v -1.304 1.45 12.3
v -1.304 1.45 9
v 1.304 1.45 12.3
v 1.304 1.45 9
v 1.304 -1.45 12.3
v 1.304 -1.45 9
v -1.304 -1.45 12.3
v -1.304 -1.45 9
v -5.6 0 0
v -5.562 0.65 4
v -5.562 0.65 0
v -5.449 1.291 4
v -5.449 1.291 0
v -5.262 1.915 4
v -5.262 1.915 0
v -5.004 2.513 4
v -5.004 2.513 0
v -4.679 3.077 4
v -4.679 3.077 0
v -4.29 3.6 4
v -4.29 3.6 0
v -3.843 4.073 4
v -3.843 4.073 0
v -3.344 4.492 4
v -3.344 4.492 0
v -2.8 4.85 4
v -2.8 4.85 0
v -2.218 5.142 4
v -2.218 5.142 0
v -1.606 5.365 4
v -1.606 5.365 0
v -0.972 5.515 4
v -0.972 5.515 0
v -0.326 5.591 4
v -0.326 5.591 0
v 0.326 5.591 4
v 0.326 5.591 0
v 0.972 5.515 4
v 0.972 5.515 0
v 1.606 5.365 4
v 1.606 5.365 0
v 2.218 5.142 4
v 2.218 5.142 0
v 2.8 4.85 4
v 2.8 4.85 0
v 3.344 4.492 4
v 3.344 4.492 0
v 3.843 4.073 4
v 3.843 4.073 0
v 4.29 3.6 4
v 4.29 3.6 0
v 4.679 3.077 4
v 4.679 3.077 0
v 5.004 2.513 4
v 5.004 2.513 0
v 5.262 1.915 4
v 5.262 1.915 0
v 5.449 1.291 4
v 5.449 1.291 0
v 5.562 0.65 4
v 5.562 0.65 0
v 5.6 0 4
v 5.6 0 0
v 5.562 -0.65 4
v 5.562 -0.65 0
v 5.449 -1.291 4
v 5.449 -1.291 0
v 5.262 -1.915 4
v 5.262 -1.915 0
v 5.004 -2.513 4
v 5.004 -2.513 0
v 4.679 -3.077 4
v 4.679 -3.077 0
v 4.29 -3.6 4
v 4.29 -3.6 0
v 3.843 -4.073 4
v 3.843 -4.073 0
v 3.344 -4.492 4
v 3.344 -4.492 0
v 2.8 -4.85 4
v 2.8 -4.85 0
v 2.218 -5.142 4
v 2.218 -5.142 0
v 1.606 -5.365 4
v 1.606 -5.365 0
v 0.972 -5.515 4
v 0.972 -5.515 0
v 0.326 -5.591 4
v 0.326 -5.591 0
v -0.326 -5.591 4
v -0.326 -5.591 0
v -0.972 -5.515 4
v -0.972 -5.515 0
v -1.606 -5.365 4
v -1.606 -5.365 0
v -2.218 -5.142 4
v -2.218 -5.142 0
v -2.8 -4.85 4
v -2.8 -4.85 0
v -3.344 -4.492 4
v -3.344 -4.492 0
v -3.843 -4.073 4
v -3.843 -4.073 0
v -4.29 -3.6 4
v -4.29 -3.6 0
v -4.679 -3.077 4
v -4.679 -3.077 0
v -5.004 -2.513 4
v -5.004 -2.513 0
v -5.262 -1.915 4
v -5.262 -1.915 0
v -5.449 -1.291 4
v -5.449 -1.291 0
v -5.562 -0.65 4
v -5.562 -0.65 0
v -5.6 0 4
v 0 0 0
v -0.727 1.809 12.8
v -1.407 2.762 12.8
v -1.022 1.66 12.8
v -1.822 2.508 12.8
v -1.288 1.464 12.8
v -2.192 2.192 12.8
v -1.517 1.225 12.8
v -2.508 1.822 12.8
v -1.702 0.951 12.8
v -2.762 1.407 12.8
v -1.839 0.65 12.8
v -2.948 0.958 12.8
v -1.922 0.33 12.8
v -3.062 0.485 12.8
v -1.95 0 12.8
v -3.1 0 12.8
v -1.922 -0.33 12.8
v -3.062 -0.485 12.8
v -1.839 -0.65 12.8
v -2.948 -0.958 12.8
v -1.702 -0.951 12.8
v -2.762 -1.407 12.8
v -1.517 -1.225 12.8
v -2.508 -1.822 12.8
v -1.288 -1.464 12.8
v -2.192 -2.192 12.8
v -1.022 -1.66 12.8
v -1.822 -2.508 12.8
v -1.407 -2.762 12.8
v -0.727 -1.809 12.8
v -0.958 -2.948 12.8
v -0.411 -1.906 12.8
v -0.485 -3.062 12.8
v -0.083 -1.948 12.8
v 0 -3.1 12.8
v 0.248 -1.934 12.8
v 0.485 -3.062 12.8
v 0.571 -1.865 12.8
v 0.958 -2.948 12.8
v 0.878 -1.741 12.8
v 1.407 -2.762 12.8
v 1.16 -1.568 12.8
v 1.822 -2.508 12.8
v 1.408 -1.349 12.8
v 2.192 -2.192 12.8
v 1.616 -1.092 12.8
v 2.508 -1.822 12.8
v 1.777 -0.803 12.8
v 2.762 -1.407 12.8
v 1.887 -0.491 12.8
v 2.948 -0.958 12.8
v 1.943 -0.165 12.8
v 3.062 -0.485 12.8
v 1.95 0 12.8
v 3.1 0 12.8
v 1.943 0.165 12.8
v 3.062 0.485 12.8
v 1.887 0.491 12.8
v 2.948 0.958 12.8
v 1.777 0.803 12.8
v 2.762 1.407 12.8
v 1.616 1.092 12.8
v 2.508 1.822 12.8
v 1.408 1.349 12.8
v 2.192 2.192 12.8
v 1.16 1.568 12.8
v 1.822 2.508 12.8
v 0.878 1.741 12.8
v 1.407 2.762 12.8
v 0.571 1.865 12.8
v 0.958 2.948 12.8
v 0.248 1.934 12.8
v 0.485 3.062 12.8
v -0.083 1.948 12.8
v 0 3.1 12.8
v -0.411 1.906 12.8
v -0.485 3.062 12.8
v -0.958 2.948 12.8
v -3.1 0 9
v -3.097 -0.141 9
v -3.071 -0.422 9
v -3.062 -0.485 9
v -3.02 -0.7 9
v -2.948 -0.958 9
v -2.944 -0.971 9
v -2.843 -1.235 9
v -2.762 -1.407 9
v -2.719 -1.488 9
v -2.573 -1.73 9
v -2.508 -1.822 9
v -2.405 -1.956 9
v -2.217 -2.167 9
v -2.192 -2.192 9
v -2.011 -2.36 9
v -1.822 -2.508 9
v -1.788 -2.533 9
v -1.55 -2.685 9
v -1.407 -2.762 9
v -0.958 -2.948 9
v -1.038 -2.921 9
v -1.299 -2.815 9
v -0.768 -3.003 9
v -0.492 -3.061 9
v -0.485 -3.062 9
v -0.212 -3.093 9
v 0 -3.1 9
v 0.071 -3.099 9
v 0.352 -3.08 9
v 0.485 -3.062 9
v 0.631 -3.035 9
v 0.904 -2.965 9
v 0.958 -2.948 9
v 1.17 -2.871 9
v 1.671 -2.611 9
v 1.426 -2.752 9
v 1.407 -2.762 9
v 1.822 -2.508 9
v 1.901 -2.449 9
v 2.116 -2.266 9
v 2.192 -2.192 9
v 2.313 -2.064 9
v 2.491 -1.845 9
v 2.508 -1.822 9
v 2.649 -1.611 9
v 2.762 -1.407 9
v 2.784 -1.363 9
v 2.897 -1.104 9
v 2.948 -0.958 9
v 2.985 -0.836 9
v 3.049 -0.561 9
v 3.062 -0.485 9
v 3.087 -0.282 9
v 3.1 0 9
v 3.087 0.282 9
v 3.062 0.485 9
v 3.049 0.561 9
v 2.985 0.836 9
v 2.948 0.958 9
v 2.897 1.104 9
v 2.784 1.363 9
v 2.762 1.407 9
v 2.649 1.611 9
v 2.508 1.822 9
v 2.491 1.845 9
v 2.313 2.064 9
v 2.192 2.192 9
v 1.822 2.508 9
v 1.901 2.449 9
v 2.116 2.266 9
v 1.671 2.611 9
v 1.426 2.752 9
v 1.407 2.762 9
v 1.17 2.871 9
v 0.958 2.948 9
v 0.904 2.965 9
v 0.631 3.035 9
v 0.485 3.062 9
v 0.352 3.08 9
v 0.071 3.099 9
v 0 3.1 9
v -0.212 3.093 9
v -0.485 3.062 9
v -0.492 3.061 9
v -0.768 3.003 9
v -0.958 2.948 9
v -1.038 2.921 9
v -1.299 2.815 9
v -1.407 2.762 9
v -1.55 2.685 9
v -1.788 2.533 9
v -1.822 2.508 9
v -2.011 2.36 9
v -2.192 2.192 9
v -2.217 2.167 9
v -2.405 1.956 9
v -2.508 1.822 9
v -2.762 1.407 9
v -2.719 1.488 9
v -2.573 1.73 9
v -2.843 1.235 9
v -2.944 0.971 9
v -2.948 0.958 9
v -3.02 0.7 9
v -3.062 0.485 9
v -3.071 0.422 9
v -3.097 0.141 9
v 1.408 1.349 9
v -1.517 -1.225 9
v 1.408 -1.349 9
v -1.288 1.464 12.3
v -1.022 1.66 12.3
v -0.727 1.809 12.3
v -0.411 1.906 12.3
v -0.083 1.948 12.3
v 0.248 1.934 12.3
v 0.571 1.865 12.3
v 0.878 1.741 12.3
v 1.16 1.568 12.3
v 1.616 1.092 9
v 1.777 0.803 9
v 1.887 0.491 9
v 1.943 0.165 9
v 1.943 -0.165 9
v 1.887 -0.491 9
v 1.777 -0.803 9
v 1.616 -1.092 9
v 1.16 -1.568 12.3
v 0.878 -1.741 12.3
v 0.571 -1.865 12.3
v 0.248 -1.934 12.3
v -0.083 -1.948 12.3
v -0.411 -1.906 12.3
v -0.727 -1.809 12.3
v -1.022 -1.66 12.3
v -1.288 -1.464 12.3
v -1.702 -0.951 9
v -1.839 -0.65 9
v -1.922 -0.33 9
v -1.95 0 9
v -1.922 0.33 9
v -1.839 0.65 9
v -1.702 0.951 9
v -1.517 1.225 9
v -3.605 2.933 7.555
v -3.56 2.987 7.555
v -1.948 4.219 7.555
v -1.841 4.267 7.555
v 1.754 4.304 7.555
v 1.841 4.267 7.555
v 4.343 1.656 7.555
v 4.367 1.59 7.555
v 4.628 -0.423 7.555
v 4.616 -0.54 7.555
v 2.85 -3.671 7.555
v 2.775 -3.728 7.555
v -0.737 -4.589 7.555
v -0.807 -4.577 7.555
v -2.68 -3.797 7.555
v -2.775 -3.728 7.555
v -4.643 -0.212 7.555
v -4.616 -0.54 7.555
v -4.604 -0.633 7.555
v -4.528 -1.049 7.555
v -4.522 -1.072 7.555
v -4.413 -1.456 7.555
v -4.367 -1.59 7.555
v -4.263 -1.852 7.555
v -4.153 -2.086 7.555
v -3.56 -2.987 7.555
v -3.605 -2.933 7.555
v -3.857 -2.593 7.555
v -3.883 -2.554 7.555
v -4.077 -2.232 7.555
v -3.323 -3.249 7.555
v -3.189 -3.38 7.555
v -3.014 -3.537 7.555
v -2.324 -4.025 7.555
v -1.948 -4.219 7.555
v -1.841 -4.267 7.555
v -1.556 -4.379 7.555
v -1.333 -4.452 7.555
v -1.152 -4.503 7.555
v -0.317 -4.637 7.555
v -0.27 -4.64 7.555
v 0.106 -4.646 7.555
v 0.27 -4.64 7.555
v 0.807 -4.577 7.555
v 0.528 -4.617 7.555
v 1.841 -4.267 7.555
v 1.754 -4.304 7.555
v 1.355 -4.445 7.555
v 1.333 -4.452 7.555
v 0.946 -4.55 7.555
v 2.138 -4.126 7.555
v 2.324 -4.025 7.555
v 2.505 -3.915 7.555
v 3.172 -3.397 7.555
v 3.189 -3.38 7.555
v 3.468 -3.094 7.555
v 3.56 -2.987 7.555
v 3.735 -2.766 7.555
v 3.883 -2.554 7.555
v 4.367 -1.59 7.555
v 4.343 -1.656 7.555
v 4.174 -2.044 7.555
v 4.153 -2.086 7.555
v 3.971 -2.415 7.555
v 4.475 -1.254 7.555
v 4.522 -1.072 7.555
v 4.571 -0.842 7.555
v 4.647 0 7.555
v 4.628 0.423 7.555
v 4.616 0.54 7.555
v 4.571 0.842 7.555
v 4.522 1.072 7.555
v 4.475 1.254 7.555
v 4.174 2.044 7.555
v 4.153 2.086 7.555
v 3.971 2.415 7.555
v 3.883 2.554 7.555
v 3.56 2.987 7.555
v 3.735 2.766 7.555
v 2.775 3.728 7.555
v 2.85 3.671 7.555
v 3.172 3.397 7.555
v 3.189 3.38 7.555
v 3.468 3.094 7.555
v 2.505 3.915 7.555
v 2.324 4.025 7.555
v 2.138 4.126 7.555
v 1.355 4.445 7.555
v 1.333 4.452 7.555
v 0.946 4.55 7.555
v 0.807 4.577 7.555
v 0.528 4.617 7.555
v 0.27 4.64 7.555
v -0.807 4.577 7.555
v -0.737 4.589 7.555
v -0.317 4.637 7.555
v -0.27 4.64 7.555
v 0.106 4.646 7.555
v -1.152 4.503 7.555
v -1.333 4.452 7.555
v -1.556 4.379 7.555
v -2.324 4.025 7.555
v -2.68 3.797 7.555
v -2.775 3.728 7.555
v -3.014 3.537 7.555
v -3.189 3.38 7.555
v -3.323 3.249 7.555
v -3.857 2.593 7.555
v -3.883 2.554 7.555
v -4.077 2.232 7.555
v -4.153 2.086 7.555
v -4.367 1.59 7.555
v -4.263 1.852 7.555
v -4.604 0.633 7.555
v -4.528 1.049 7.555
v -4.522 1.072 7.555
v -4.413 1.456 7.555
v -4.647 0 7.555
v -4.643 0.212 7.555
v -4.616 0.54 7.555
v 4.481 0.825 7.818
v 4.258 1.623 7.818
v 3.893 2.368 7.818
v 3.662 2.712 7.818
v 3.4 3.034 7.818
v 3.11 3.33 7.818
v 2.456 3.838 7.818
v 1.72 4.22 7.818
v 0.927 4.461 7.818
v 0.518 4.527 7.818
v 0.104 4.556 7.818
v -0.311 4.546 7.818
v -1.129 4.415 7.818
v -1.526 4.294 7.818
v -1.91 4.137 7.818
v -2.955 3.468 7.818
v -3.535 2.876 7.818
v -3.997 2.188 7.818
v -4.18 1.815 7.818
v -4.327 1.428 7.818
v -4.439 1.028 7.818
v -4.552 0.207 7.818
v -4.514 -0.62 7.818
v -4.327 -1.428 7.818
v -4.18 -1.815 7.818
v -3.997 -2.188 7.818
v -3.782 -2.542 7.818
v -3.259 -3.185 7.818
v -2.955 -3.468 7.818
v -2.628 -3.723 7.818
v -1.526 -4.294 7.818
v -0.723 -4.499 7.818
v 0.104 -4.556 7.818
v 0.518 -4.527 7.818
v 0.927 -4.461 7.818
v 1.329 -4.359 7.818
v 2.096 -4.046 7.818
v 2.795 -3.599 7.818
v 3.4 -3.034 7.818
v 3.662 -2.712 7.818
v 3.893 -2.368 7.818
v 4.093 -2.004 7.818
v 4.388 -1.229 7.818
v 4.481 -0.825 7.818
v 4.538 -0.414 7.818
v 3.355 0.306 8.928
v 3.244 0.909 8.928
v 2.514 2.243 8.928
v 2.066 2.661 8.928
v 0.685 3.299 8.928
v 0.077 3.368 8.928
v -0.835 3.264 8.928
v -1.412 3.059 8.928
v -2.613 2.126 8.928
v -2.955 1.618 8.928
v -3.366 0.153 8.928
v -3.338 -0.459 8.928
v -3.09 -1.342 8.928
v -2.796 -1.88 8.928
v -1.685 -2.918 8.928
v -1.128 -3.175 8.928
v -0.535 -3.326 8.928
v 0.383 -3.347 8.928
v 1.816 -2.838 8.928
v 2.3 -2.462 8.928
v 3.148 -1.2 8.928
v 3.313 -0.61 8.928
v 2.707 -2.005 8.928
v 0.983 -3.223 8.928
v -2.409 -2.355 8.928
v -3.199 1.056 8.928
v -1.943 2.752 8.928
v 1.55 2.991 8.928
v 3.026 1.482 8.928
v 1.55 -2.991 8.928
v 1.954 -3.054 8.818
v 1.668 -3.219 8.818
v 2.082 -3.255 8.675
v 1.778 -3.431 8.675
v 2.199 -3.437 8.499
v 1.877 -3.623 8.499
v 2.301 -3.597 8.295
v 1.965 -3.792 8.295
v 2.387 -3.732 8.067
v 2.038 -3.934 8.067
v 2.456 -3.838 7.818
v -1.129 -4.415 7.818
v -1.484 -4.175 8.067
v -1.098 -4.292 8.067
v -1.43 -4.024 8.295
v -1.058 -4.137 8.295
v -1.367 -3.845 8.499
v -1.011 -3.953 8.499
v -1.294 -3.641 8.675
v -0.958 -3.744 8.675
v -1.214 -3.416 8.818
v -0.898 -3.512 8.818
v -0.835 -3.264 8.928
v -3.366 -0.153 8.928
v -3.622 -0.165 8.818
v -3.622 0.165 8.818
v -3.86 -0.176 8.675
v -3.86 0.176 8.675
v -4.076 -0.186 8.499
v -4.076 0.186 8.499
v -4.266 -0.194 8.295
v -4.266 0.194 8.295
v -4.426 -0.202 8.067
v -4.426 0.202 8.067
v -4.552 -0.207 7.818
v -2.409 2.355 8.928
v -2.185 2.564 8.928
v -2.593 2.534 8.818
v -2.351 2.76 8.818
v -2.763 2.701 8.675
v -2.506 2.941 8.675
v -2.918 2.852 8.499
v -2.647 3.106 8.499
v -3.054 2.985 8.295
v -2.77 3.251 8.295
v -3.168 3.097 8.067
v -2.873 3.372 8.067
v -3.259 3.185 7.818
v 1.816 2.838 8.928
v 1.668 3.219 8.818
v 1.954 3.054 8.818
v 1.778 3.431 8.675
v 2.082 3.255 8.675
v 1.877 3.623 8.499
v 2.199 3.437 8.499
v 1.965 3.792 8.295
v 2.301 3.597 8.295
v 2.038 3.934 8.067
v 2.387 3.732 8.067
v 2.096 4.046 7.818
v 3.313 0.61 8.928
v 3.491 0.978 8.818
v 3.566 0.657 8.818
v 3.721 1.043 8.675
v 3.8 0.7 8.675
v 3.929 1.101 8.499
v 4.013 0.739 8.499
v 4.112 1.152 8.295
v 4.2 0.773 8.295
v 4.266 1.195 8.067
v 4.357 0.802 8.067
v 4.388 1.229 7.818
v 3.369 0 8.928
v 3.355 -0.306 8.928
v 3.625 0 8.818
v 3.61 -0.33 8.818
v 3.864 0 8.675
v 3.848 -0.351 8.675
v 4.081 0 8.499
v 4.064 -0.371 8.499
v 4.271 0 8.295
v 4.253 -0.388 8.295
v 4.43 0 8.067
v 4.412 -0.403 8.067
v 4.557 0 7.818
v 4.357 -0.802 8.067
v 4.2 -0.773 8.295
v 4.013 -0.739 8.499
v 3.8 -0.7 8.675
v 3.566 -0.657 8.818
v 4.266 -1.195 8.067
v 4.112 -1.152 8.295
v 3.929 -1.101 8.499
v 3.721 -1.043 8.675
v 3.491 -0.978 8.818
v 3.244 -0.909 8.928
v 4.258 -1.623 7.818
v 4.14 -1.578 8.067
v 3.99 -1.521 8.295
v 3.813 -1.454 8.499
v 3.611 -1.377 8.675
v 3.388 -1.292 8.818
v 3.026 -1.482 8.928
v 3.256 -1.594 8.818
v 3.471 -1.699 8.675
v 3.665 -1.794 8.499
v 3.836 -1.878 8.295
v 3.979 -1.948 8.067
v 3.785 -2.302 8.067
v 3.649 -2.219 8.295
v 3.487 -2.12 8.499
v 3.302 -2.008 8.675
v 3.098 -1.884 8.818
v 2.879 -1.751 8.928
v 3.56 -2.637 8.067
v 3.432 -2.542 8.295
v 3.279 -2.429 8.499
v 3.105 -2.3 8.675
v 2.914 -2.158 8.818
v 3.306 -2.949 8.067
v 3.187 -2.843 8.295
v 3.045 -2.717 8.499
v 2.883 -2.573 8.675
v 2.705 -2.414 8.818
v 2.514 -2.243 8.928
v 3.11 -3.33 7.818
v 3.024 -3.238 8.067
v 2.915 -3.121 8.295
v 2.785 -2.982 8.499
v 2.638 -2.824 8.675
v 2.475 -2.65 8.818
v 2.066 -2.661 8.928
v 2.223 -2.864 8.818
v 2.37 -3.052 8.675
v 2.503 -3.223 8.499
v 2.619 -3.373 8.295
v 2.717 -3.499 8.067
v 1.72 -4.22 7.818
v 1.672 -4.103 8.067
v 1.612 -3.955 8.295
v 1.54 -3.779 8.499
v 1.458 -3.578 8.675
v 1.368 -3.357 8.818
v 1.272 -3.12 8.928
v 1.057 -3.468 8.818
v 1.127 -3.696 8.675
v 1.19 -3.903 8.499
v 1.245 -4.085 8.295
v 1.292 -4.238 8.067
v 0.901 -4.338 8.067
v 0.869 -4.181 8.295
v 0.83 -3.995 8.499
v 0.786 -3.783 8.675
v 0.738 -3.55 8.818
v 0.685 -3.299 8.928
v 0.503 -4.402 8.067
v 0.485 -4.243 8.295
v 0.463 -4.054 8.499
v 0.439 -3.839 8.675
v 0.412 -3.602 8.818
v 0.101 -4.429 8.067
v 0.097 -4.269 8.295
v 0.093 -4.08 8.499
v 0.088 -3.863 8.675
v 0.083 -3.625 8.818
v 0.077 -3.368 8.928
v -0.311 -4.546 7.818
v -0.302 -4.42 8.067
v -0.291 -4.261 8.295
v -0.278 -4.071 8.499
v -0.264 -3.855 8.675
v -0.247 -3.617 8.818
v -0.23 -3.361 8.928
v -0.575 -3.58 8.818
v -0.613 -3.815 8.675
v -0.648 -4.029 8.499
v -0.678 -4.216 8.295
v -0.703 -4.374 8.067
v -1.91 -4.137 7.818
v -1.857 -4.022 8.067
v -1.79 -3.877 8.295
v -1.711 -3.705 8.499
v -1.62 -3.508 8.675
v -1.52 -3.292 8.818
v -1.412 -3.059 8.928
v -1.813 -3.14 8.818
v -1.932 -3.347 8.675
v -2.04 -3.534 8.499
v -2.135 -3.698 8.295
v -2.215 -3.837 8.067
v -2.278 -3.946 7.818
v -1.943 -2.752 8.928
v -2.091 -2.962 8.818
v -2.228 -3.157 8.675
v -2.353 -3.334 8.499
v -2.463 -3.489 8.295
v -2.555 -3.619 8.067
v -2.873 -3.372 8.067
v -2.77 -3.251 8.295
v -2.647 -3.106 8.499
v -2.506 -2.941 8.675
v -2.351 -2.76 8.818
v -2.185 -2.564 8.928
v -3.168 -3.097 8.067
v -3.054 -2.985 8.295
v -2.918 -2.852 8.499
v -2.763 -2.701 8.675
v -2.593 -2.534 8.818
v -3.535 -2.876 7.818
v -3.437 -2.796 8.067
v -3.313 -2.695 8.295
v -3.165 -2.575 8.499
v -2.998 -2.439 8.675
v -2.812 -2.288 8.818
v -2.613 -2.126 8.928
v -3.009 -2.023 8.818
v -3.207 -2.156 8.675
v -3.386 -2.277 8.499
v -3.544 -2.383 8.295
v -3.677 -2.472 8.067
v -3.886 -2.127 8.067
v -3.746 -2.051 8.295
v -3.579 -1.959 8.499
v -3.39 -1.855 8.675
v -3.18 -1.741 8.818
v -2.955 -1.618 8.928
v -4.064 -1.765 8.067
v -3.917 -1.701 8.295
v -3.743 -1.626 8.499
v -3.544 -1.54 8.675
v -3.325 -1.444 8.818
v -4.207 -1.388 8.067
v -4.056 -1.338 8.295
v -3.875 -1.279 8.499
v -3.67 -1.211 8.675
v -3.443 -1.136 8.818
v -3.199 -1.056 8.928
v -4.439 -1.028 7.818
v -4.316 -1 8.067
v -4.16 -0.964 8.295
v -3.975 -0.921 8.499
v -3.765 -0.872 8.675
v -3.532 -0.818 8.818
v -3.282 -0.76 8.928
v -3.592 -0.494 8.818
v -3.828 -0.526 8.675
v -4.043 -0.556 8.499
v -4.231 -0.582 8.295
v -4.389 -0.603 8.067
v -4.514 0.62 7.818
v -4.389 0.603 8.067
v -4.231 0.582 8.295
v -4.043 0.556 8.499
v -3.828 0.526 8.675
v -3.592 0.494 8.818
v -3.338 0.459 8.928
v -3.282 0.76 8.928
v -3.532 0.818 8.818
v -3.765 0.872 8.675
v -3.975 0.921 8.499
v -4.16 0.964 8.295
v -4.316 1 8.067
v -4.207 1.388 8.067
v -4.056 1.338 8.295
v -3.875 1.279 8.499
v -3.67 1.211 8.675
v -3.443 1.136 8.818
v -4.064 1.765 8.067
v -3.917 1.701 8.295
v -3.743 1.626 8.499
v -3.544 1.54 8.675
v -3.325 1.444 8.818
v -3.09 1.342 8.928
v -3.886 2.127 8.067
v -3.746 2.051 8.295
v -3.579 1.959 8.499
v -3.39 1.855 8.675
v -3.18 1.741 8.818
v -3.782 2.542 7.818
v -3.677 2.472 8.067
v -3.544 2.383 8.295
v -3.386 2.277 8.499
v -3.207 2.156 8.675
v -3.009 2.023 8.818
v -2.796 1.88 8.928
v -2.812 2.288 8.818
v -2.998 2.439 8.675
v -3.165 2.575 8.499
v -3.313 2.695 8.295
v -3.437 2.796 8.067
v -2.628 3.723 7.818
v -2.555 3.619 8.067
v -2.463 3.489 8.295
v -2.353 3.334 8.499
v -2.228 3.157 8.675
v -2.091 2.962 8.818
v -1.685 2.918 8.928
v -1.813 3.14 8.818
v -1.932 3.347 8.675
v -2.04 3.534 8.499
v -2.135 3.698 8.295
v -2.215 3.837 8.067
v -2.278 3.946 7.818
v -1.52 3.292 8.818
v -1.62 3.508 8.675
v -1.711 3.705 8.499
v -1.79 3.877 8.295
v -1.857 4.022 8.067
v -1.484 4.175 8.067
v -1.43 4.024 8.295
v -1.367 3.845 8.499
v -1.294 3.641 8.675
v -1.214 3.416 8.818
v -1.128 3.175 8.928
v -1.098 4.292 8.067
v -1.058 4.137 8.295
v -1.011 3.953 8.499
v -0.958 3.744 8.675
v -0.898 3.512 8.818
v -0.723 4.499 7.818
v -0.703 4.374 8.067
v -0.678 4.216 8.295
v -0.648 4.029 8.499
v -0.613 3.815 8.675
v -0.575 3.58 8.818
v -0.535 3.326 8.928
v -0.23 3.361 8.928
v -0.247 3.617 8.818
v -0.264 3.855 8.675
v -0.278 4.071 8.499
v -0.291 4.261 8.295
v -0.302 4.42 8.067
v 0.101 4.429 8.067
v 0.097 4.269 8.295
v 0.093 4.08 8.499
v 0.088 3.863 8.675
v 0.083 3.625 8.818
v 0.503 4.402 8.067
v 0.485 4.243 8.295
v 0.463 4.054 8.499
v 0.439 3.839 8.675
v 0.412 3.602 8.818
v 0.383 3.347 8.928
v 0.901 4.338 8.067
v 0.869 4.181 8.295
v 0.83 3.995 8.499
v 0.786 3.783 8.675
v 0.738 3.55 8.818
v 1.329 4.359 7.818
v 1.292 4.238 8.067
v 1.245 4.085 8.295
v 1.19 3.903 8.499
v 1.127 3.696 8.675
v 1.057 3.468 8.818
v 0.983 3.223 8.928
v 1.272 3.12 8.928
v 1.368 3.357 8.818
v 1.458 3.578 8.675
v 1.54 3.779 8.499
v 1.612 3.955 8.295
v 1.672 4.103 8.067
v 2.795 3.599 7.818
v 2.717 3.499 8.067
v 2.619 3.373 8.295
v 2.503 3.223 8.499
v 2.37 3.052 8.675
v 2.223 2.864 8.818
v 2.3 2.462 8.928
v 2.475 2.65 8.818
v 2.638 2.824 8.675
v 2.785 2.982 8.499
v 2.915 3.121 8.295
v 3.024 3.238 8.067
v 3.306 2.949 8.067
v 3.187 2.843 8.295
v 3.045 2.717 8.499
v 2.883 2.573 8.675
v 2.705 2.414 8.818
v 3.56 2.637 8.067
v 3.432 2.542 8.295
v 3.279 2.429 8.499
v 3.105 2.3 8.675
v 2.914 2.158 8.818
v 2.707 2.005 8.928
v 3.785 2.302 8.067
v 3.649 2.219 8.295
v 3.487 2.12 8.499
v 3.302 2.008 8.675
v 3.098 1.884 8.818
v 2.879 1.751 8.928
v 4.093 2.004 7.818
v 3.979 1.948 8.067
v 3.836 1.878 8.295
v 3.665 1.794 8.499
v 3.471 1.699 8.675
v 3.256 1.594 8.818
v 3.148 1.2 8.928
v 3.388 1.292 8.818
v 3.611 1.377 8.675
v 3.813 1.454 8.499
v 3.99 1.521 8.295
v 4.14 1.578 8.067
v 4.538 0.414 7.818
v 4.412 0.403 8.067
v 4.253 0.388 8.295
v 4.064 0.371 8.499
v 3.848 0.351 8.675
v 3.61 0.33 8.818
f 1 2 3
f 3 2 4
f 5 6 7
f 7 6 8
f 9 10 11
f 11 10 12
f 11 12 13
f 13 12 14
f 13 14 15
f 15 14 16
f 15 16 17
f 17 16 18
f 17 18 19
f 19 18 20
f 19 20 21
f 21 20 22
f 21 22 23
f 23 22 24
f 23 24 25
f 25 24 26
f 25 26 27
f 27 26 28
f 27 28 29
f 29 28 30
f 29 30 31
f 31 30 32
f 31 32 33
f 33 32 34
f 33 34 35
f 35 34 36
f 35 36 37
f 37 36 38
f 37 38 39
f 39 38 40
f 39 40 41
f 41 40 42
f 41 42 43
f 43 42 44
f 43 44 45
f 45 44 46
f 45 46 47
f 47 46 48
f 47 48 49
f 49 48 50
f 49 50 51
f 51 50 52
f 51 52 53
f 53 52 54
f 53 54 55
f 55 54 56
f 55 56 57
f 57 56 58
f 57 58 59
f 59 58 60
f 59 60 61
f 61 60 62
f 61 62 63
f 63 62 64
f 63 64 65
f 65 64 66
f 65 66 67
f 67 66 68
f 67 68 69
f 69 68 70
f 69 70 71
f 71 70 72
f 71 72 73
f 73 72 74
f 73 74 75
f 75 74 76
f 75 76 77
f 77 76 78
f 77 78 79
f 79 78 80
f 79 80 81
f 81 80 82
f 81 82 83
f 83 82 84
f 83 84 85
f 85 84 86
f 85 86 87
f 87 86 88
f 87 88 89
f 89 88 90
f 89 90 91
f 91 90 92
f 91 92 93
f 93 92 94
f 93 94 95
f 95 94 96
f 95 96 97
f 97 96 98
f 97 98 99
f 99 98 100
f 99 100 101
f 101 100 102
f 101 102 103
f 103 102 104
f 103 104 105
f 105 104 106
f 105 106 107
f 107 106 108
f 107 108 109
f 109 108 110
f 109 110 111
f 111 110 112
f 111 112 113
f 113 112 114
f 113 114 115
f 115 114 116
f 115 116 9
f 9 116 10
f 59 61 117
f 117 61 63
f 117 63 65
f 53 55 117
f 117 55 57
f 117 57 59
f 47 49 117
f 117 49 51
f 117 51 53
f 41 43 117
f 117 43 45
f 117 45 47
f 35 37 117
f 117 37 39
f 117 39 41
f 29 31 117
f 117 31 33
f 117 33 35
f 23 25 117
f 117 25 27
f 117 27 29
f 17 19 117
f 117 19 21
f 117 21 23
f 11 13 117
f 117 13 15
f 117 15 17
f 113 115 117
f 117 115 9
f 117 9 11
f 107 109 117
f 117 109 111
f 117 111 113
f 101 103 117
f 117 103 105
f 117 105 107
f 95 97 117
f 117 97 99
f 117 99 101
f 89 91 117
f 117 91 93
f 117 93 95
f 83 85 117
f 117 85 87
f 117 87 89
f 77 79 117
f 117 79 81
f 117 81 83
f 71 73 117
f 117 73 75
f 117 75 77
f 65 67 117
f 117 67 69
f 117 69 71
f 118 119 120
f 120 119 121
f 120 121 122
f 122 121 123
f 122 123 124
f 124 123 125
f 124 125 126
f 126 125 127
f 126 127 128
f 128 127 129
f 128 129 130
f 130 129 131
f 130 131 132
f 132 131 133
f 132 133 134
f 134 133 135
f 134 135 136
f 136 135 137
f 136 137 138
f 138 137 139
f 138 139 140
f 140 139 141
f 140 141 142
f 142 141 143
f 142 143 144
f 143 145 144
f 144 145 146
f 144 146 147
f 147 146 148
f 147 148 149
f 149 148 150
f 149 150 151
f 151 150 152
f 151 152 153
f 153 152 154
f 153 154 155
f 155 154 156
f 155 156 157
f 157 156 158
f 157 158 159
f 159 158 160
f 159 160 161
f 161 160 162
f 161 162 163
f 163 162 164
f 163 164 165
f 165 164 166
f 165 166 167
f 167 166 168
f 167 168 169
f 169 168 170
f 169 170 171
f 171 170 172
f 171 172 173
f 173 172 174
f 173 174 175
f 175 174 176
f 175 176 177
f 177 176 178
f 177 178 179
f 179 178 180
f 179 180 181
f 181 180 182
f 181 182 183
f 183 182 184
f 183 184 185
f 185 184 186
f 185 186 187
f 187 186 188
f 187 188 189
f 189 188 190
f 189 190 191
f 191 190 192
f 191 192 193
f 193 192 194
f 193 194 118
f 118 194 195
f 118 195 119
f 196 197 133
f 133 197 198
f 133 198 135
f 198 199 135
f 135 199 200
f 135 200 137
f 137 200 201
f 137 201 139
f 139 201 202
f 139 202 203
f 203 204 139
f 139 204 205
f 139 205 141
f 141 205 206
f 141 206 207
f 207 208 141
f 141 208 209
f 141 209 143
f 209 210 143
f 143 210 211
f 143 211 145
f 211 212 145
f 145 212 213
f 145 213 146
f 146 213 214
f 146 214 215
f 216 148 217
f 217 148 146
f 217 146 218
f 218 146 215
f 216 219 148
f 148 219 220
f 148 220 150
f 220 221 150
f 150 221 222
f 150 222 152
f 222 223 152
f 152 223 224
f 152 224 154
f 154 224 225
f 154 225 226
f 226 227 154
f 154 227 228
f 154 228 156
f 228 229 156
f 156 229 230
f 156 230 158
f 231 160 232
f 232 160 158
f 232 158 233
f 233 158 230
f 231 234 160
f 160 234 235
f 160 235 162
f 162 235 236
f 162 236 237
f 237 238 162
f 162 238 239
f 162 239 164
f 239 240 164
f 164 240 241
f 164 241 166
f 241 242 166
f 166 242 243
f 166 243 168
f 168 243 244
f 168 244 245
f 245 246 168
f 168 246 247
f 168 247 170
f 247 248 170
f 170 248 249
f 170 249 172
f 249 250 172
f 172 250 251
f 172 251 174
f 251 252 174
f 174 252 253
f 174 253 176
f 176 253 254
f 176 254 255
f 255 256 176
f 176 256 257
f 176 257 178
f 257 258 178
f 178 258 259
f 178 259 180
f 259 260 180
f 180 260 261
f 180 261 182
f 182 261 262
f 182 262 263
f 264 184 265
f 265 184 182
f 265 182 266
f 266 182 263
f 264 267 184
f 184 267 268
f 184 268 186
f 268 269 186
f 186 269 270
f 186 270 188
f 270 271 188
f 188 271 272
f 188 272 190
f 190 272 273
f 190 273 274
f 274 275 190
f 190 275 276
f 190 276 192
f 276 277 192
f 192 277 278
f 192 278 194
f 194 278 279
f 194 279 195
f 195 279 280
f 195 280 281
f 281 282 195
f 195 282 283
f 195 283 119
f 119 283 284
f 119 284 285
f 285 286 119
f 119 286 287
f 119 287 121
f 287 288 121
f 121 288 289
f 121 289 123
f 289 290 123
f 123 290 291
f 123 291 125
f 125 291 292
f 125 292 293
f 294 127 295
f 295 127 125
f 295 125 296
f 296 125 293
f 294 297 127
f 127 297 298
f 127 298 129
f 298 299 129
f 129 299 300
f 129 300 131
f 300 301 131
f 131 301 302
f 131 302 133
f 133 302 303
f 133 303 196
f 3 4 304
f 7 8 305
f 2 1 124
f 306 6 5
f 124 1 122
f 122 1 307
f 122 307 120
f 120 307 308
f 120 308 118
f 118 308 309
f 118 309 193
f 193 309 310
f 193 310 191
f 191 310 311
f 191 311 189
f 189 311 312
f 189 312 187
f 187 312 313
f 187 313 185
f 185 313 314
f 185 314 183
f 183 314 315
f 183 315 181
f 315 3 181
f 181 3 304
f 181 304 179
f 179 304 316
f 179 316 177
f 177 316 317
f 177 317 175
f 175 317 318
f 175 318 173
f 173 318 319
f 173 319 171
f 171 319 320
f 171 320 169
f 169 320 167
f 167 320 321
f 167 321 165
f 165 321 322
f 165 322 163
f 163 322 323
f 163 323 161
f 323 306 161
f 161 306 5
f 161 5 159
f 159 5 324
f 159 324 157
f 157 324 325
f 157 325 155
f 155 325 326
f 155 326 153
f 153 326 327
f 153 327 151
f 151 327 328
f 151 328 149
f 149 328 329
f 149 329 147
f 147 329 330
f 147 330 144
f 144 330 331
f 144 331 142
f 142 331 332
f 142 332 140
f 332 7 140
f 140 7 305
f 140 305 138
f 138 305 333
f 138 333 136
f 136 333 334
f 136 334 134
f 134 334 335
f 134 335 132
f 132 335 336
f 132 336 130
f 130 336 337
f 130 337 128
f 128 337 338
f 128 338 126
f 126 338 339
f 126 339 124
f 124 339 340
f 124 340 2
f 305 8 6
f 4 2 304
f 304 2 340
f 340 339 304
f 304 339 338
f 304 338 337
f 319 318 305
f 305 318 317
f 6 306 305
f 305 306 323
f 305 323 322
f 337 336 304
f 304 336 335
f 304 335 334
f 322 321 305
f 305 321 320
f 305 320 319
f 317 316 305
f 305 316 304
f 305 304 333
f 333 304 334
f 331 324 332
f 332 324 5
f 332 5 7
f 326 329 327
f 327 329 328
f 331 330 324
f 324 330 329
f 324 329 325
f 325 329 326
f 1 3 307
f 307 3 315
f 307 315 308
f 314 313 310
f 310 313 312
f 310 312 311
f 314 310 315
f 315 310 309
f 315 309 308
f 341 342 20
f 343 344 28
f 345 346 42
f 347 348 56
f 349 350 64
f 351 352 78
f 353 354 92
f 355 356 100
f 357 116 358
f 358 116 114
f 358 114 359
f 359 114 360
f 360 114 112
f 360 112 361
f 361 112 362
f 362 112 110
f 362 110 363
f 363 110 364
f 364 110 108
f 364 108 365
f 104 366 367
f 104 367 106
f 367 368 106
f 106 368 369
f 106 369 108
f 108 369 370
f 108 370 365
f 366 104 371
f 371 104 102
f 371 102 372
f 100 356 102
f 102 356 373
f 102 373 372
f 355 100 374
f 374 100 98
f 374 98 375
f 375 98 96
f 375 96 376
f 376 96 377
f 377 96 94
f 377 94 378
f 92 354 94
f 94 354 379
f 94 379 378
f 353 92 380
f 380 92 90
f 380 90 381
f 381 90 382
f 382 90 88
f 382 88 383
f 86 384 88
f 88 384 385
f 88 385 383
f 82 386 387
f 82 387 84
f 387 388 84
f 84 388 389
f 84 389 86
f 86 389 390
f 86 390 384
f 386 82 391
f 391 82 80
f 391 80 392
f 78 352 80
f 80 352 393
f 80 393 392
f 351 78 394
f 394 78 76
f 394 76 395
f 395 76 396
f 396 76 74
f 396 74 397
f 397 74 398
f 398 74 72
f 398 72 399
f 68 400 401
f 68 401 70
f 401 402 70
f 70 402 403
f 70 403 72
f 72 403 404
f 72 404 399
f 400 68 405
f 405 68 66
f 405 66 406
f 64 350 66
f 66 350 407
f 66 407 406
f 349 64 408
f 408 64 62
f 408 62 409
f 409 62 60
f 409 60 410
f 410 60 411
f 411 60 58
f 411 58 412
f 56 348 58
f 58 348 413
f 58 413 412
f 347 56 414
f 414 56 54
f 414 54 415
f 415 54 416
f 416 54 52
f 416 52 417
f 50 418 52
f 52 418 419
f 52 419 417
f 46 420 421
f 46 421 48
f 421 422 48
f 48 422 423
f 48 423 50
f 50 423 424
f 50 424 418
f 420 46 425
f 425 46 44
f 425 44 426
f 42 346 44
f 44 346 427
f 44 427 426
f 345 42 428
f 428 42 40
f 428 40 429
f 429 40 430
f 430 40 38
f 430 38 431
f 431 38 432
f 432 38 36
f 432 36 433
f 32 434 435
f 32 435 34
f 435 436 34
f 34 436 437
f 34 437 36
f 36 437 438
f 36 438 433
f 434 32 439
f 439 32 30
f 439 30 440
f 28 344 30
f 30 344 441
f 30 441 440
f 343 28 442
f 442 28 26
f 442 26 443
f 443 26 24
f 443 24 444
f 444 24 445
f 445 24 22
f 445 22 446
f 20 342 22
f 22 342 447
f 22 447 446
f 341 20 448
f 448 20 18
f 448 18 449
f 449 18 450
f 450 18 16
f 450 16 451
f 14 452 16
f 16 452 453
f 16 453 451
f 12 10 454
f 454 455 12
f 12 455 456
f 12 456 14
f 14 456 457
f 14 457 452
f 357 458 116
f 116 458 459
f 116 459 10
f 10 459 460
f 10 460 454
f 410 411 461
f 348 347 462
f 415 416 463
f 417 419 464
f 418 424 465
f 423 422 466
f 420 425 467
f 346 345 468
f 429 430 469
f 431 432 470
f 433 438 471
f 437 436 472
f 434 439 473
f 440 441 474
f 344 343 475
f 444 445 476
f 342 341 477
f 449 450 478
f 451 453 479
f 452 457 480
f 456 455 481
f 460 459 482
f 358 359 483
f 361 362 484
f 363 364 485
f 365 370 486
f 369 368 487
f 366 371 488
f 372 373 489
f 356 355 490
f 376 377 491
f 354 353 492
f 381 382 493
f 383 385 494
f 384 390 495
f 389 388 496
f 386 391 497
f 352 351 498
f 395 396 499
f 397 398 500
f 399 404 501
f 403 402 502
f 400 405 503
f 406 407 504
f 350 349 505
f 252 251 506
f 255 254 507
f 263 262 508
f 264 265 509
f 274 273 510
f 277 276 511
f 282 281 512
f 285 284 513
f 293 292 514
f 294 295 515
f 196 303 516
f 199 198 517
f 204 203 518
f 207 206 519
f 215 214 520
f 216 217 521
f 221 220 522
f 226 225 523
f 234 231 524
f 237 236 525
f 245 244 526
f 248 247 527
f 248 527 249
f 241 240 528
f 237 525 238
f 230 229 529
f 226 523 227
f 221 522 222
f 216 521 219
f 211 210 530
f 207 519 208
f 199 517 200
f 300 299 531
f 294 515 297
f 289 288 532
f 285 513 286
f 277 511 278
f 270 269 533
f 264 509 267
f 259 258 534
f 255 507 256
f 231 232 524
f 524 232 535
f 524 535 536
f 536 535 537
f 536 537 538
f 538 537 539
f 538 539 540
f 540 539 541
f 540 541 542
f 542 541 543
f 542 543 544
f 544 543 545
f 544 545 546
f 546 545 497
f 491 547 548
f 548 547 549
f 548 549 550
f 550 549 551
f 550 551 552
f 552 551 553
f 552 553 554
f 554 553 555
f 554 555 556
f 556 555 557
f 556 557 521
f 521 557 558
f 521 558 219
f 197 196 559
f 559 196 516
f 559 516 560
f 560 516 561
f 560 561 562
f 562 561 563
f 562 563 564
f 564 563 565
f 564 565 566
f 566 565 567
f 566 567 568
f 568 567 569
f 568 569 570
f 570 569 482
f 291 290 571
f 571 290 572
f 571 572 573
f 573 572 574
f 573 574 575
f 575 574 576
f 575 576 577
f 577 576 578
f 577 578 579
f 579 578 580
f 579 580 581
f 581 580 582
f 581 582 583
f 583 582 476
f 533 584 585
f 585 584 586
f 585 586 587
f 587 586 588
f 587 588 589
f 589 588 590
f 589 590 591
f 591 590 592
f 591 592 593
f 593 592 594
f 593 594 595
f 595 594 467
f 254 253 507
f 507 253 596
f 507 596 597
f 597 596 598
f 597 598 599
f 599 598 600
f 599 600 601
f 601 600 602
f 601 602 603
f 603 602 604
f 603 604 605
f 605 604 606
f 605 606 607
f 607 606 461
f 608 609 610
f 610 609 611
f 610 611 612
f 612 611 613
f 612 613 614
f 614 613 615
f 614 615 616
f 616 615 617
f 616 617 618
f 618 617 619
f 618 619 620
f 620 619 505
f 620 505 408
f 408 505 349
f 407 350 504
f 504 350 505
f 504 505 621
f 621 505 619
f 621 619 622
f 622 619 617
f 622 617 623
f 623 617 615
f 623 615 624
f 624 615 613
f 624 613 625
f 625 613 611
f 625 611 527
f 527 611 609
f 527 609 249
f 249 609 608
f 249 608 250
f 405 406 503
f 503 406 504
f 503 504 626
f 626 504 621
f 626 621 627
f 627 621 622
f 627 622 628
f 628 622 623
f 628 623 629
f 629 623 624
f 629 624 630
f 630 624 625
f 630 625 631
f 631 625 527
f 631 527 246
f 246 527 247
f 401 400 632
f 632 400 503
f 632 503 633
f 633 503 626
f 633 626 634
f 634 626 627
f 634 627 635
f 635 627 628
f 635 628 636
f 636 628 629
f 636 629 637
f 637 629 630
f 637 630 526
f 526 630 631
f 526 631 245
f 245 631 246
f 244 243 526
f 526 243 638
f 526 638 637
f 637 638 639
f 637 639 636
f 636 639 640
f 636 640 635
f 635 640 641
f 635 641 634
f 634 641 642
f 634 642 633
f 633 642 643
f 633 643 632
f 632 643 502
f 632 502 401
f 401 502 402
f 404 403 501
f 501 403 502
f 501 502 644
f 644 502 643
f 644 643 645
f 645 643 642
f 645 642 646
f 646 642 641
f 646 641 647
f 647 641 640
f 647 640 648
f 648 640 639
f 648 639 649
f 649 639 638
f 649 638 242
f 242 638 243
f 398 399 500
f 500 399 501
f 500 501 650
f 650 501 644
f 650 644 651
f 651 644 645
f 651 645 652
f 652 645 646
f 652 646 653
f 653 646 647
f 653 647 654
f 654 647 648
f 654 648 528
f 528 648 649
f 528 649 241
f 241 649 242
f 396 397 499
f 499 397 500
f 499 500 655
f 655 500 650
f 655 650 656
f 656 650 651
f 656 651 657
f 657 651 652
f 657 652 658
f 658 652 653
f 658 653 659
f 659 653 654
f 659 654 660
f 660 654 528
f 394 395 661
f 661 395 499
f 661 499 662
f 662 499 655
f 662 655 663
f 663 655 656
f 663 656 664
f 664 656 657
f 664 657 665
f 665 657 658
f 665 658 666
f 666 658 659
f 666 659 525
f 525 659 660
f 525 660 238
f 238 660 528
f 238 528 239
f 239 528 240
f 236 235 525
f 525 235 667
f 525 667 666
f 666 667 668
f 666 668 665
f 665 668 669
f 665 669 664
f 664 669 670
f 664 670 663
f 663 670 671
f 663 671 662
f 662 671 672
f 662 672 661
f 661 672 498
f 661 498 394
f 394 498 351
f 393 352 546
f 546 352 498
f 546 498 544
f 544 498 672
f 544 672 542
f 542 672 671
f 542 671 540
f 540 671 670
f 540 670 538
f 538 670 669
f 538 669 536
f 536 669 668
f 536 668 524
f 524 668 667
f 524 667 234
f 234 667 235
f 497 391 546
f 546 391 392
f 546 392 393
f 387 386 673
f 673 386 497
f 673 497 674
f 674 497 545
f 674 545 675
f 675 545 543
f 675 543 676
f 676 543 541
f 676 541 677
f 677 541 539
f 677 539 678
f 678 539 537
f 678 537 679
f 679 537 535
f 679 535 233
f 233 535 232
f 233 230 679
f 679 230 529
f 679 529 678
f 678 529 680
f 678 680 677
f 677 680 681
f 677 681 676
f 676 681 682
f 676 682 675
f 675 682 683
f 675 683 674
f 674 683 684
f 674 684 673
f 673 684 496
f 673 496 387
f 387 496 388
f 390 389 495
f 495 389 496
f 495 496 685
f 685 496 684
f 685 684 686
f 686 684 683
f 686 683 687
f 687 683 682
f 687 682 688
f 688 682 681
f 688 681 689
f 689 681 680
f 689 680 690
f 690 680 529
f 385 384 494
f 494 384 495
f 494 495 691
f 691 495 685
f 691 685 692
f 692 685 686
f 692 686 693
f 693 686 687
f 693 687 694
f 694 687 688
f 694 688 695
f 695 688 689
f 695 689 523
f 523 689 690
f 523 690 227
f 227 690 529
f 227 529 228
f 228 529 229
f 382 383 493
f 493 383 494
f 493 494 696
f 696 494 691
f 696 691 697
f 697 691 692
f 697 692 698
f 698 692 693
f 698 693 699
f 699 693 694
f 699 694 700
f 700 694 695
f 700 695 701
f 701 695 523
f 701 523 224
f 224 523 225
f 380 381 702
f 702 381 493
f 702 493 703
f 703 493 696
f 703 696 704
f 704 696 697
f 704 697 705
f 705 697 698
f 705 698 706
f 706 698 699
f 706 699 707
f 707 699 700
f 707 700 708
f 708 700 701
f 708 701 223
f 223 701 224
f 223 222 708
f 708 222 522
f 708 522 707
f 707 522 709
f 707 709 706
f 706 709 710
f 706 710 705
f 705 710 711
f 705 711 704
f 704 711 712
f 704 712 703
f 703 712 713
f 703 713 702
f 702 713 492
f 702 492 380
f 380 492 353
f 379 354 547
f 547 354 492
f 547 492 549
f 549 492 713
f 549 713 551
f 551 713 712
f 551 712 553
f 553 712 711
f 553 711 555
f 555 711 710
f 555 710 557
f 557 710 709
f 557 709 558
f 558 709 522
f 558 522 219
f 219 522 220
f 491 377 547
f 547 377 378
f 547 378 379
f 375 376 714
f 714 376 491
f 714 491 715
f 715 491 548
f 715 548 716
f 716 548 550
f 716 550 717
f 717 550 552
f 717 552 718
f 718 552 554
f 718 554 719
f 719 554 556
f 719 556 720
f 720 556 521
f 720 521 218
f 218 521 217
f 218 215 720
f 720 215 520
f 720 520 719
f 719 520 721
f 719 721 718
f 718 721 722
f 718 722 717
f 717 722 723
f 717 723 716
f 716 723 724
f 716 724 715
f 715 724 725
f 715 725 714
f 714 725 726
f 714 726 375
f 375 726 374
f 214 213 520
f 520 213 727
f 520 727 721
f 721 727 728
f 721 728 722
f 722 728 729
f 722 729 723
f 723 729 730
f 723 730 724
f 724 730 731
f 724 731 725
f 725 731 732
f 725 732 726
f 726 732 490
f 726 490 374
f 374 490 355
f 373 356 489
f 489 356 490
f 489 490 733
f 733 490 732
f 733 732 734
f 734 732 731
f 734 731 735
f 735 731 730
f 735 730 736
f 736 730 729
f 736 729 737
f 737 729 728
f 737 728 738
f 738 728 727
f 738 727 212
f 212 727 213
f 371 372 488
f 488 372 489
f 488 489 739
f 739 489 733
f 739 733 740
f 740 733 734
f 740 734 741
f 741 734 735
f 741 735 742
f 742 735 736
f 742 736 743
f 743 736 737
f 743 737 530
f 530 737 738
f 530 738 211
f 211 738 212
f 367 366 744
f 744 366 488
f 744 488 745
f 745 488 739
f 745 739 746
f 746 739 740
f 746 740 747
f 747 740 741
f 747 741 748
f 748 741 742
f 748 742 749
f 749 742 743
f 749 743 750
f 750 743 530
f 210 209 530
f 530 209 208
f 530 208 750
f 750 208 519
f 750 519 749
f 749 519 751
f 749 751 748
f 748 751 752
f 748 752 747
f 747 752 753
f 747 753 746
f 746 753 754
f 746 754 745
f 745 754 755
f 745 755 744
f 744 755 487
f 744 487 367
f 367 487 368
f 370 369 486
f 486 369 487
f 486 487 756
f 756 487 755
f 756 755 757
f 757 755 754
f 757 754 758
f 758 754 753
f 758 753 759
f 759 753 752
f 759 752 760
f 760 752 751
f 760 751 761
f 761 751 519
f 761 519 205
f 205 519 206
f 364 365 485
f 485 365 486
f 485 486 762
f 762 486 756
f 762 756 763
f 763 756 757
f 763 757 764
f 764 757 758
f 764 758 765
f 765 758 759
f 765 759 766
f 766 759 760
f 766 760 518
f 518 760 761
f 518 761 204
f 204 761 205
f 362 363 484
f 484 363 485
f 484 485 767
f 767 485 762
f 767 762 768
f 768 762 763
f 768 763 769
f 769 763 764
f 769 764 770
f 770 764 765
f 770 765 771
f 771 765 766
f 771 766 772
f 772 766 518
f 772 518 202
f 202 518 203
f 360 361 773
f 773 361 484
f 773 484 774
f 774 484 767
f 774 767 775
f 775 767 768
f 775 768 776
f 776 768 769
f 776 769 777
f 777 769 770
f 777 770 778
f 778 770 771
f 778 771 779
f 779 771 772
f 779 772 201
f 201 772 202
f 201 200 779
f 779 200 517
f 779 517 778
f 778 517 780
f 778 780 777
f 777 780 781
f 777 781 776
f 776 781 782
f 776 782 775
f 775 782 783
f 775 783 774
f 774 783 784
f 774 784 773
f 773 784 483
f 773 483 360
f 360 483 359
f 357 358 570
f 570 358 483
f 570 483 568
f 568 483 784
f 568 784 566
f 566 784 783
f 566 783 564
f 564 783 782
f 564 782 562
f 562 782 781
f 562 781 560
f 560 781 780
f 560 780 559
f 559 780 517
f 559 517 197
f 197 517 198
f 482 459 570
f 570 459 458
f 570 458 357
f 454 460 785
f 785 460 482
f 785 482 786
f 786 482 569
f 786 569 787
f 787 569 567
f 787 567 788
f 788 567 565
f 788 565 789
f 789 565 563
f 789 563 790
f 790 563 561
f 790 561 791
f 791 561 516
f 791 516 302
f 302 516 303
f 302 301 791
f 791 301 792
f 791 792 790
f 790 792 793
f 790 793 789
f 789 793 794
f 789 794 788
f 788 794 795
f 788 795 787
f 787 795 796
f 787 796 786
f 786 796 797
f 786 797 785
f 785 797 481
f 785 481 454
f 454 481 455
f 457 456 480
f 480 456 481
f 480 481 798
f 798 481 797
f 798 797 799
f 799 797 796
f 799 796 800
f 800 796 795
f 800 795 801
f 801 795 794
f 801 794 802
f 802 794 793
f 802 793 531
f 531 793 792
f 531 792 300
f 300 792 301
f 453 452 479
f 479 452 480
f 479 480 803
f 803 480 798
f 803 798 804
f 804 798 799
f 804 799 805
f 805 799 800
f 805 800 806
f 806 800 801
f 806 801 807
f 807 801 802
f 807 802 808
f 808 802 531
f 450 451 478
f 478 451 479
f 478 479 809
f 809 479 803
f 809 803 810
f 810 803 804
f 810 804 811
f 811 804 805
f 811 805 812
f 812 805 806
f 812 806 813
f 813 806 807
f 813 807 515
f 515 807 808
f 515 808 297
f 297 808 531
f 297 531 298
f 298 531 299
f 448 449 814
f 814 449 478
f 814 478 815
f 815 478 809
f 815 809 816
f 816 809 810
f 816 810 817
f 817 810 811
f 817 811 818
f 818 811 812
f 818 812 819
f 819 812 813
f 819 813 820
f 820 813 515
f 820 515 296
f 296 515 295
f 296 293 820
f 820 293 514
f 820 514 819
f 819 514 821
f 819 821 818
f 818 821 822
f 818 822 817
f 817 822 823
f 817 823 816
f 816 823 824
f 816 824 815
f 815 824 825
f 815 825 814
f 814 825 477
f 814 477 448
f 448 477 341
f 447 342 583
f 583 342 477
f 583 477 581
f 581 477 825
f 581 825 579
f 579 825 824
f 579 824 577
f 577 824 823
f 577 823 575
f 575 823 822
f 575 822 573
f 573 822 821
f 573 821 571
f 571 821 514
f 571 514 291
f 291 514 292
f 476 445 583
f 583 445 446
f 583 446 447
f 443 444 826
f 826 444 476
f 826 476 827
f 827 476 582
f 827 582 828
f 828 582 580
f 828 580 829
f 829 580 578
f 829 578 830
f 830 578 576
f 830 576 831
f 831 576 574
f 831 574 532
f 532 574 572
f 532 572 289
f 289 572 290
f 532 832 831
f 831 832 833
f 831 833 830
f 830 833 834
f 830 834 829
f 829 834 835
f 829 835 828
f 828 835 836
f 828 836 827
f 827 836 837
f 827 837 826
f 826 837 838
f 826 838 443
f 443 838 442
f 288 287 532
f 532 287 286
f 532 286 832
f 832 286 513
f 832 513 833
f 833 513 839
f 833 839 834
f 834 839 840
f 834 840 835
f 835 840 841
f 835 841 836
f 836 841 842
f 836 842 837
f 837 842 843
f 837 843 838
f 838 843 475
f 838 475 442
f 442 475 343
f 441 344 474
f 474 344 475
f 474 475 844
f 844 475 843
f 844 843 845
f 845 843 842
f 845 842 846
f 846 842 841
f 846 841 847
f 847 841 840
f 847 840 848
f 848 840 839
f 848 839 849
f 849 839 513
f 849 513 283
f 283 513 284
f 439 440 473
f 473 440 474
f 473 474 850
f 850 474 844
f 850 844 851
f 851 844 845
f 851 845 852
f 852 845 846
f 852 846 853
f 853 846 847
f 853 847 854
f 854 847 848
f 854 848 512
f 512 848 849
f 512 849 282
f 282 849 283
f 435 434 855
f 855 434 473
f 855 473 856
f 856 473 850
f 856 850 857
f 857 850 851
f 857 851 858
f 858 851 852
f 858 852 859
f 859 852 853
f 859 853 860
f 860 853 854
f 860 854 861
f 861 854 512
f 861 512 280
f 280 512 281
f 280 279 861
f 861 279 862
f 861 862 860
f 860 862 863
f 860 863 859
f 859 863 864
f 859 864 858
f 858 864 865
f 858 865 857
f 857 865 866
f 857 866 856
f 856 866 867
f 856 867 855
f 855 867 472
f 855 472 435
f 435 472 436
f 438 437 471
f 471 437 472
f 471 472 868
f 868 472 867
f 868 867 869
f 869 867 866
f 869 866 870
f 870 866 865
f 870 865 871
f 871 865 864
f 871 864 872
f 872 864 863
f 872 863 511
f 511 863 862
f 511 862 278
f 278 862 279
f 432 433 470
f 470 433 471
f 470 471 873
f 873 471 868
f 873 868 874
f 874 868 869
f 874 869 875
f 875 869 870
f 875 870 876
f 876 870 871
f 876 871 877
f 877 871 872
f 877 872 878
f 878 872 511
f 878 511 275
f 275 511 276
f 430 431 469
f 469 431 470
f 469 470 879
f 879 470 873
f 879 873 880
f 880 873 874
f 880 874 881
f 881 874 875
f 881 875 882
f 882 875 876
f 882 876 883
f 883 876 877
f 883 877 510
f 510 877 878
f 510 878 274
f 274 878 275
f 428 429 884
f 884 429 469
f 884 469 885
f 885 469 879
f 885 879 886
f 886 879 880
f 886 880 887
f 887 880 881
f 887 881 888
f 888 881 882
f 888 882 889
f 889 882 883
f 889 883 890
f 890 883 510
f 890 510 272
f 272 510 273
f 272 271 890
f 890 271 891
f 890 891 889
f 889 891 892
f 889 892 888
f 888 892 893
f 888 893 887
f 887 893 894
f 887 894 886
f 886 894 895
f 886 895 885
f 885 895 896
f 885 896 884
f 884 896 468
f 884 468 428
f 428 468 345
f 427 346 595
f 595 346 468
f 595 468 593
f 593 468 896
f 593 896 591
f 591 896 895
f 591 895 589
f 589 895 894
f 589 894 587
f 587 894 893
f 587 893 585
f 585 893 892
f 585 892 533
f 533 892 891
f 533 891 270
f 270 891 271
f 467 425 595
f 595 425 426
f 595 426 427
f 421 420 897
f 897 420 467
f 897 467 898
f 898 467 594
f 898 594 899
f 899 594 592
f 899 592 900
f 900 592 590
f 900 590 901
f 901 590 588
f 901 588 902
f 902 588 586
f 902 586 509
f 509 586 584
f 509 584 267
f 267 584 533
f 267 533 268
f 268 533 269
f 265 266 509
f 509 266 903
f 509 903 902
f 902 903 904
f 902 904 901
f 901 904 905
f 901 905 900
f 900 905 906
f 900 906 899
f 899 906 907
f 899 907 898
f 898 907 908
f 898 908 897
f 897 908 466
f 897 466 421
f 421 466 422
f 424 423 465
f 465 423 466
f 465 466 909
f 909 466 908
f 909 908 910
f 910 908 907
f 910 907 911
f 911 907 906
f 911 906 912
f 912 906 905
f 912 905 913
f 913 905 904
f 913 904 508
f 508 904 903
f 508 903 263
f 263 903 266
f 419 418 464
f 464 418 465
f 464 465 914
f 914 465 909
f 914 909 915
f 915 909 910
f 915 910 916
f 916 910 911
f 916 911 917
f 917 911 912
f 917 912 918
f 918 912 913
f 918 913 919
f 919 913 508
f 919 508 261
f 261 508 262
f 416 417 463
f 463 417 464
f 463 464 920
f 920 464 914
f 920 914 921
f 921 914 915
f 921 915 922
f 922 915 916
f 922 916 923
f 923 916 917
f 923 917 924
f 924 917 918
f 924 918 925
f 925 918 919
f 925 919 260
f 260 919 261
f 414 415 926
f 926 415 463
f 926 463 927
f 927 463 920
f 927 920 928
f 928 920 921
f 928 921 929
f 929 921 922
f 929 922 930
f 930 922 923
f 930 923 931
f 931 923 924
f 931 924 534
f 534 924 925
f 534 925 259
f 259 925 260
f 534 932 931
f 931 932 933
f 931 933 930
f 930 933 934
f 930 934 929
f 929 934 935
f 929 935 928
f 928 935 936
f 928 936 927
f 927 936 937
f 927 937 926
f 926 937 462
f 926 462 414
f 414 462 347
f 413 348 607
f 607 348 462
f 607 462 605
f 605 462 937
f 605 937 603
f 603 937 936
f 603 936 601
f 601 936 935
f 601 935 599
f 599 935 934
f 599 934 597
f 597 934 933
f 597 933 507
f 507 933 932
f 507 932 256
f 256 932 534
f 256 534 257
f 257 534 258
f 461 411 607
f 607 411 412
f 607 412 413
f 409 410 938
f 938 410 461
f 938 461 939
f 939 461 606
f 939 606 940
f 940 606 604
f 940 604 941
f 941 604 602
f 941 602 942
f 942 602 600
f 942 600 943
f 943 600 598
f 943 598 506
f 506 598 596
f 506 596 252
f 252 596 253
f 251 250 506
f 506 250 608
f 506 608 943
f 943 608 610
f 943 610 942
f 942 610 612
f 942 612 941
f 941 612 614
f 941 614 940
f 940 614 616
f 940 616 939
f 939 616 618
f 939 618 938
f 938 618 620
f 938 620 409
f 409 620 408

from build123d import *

# Parameters (mm, degrees)
SKETCH1_R           = 5.6
BOSS_EXTRUDE1_DEPTH = 9
SKETCH2_R           = 3.1
BOSS_EXTRUDE2_DEPTH = 3.8
CUT_EXTRUDE1_START  = -0.5
SKETCH3_R           = 1.95
CUT_EXTRUDE1_DEPTH  = 0.5
CHAMFER1_SIZE       = 5
CHAMFER1_SIZE2      = 1.339745962
FILLET1_R           = 2


with BuildPart() as part:
    # Sketch1 → Boss-Extrude1 (new body)
    with BuildSketch(Plane.XY):
        Circle(SKETCH1_R)
    extrude(amount=BOSS_EXTRUDE1_DEPTH)

    # Sketch2 → Boss-Extrude2 (add)
    with BuildSketch(Plane.XY.offset(9)):
        with Locations(Location((0, 0, 0), (0, 0, 180))):
            Circle(SKETCH2_R)
        with BuildLine():
            Line((-1.303840481, -1.45), (1.303840481, -1.45))
            ThreePointArc((1.303840481, -1.45), (1.95, 0), (1.303840481, 1.45))
            Line((1.303840481, 1.45), (-1.303840481, 1.45))
            ThreePointArc((-1.303840481, 1.45), (-1.95, 0), (-1.303840481, -1.45))
        make_face(mode=Mode.SUBTRACT)
    extrude(amount=BOSS_EXTRUDE2_DEPTH)

    # Sketch3 → Cut-Extrude1 (cut)
    with BuildSketch(Plane.XY.offset(12.8).offset(CUT_EXTRUDE1_START)):
        with Locations(Location((0, 0, 0), (0, 0, 131.961888828))):
            Circle(SKETCH3_R)
    extrude(amount=CUT_EXTRUDE1_DEPTH, mode=Mode.SUBTRACT)

    # Chamfer1
    chamfer1_edges = [part.edges().sort_by_distance(p)[0] for p in [
        (-5.6, 0, 9),
    ]]
    chamfer1_side = [part.faces().sort_by_distance(p)[0] for p in [
        (-5.6, 0, 4.5),
    ]]
    chamfer(chamfer1_edges, length=CHAMFER1_SIZE, length2=CHAMFER1_SIZE2, reference=chamfer1_side[0])

    # Fillet1
    # the kernel refuses this fillet: 2 mm, written as the material it takes off along each edge
    with BuildSketch(Plane(origin=(0, 0, 9), x_dir=(1, 0, 0), z_dir=(0, -1, 0))) as fillet1_piece_1:
        with BuildLine():
            CenterArc((2.715609132, -1.962713341), FILLET1_R, 15, 63.919064975)
            Line((3.1, 0), (3.107687817, 0.039254267))
            ThreePointArc((3.107687817, 0.039254267), (3.680127019, 0.04), (4.260254038, 0.04))
            Line((4.260254038, 0.04), (4.298891071, 0.010352762))
            Line((4.298891071, 0.010352762), (4.686097817, -1.434722489))
            Line((4.686097817, -1.434722489), (4.647460784, -1.445075251))
        make_face()
    revolve(axis=Axis((0, 0, 9), (0, 0, 1)), mode=Mode.SUBTRACT)


solid = part.part
